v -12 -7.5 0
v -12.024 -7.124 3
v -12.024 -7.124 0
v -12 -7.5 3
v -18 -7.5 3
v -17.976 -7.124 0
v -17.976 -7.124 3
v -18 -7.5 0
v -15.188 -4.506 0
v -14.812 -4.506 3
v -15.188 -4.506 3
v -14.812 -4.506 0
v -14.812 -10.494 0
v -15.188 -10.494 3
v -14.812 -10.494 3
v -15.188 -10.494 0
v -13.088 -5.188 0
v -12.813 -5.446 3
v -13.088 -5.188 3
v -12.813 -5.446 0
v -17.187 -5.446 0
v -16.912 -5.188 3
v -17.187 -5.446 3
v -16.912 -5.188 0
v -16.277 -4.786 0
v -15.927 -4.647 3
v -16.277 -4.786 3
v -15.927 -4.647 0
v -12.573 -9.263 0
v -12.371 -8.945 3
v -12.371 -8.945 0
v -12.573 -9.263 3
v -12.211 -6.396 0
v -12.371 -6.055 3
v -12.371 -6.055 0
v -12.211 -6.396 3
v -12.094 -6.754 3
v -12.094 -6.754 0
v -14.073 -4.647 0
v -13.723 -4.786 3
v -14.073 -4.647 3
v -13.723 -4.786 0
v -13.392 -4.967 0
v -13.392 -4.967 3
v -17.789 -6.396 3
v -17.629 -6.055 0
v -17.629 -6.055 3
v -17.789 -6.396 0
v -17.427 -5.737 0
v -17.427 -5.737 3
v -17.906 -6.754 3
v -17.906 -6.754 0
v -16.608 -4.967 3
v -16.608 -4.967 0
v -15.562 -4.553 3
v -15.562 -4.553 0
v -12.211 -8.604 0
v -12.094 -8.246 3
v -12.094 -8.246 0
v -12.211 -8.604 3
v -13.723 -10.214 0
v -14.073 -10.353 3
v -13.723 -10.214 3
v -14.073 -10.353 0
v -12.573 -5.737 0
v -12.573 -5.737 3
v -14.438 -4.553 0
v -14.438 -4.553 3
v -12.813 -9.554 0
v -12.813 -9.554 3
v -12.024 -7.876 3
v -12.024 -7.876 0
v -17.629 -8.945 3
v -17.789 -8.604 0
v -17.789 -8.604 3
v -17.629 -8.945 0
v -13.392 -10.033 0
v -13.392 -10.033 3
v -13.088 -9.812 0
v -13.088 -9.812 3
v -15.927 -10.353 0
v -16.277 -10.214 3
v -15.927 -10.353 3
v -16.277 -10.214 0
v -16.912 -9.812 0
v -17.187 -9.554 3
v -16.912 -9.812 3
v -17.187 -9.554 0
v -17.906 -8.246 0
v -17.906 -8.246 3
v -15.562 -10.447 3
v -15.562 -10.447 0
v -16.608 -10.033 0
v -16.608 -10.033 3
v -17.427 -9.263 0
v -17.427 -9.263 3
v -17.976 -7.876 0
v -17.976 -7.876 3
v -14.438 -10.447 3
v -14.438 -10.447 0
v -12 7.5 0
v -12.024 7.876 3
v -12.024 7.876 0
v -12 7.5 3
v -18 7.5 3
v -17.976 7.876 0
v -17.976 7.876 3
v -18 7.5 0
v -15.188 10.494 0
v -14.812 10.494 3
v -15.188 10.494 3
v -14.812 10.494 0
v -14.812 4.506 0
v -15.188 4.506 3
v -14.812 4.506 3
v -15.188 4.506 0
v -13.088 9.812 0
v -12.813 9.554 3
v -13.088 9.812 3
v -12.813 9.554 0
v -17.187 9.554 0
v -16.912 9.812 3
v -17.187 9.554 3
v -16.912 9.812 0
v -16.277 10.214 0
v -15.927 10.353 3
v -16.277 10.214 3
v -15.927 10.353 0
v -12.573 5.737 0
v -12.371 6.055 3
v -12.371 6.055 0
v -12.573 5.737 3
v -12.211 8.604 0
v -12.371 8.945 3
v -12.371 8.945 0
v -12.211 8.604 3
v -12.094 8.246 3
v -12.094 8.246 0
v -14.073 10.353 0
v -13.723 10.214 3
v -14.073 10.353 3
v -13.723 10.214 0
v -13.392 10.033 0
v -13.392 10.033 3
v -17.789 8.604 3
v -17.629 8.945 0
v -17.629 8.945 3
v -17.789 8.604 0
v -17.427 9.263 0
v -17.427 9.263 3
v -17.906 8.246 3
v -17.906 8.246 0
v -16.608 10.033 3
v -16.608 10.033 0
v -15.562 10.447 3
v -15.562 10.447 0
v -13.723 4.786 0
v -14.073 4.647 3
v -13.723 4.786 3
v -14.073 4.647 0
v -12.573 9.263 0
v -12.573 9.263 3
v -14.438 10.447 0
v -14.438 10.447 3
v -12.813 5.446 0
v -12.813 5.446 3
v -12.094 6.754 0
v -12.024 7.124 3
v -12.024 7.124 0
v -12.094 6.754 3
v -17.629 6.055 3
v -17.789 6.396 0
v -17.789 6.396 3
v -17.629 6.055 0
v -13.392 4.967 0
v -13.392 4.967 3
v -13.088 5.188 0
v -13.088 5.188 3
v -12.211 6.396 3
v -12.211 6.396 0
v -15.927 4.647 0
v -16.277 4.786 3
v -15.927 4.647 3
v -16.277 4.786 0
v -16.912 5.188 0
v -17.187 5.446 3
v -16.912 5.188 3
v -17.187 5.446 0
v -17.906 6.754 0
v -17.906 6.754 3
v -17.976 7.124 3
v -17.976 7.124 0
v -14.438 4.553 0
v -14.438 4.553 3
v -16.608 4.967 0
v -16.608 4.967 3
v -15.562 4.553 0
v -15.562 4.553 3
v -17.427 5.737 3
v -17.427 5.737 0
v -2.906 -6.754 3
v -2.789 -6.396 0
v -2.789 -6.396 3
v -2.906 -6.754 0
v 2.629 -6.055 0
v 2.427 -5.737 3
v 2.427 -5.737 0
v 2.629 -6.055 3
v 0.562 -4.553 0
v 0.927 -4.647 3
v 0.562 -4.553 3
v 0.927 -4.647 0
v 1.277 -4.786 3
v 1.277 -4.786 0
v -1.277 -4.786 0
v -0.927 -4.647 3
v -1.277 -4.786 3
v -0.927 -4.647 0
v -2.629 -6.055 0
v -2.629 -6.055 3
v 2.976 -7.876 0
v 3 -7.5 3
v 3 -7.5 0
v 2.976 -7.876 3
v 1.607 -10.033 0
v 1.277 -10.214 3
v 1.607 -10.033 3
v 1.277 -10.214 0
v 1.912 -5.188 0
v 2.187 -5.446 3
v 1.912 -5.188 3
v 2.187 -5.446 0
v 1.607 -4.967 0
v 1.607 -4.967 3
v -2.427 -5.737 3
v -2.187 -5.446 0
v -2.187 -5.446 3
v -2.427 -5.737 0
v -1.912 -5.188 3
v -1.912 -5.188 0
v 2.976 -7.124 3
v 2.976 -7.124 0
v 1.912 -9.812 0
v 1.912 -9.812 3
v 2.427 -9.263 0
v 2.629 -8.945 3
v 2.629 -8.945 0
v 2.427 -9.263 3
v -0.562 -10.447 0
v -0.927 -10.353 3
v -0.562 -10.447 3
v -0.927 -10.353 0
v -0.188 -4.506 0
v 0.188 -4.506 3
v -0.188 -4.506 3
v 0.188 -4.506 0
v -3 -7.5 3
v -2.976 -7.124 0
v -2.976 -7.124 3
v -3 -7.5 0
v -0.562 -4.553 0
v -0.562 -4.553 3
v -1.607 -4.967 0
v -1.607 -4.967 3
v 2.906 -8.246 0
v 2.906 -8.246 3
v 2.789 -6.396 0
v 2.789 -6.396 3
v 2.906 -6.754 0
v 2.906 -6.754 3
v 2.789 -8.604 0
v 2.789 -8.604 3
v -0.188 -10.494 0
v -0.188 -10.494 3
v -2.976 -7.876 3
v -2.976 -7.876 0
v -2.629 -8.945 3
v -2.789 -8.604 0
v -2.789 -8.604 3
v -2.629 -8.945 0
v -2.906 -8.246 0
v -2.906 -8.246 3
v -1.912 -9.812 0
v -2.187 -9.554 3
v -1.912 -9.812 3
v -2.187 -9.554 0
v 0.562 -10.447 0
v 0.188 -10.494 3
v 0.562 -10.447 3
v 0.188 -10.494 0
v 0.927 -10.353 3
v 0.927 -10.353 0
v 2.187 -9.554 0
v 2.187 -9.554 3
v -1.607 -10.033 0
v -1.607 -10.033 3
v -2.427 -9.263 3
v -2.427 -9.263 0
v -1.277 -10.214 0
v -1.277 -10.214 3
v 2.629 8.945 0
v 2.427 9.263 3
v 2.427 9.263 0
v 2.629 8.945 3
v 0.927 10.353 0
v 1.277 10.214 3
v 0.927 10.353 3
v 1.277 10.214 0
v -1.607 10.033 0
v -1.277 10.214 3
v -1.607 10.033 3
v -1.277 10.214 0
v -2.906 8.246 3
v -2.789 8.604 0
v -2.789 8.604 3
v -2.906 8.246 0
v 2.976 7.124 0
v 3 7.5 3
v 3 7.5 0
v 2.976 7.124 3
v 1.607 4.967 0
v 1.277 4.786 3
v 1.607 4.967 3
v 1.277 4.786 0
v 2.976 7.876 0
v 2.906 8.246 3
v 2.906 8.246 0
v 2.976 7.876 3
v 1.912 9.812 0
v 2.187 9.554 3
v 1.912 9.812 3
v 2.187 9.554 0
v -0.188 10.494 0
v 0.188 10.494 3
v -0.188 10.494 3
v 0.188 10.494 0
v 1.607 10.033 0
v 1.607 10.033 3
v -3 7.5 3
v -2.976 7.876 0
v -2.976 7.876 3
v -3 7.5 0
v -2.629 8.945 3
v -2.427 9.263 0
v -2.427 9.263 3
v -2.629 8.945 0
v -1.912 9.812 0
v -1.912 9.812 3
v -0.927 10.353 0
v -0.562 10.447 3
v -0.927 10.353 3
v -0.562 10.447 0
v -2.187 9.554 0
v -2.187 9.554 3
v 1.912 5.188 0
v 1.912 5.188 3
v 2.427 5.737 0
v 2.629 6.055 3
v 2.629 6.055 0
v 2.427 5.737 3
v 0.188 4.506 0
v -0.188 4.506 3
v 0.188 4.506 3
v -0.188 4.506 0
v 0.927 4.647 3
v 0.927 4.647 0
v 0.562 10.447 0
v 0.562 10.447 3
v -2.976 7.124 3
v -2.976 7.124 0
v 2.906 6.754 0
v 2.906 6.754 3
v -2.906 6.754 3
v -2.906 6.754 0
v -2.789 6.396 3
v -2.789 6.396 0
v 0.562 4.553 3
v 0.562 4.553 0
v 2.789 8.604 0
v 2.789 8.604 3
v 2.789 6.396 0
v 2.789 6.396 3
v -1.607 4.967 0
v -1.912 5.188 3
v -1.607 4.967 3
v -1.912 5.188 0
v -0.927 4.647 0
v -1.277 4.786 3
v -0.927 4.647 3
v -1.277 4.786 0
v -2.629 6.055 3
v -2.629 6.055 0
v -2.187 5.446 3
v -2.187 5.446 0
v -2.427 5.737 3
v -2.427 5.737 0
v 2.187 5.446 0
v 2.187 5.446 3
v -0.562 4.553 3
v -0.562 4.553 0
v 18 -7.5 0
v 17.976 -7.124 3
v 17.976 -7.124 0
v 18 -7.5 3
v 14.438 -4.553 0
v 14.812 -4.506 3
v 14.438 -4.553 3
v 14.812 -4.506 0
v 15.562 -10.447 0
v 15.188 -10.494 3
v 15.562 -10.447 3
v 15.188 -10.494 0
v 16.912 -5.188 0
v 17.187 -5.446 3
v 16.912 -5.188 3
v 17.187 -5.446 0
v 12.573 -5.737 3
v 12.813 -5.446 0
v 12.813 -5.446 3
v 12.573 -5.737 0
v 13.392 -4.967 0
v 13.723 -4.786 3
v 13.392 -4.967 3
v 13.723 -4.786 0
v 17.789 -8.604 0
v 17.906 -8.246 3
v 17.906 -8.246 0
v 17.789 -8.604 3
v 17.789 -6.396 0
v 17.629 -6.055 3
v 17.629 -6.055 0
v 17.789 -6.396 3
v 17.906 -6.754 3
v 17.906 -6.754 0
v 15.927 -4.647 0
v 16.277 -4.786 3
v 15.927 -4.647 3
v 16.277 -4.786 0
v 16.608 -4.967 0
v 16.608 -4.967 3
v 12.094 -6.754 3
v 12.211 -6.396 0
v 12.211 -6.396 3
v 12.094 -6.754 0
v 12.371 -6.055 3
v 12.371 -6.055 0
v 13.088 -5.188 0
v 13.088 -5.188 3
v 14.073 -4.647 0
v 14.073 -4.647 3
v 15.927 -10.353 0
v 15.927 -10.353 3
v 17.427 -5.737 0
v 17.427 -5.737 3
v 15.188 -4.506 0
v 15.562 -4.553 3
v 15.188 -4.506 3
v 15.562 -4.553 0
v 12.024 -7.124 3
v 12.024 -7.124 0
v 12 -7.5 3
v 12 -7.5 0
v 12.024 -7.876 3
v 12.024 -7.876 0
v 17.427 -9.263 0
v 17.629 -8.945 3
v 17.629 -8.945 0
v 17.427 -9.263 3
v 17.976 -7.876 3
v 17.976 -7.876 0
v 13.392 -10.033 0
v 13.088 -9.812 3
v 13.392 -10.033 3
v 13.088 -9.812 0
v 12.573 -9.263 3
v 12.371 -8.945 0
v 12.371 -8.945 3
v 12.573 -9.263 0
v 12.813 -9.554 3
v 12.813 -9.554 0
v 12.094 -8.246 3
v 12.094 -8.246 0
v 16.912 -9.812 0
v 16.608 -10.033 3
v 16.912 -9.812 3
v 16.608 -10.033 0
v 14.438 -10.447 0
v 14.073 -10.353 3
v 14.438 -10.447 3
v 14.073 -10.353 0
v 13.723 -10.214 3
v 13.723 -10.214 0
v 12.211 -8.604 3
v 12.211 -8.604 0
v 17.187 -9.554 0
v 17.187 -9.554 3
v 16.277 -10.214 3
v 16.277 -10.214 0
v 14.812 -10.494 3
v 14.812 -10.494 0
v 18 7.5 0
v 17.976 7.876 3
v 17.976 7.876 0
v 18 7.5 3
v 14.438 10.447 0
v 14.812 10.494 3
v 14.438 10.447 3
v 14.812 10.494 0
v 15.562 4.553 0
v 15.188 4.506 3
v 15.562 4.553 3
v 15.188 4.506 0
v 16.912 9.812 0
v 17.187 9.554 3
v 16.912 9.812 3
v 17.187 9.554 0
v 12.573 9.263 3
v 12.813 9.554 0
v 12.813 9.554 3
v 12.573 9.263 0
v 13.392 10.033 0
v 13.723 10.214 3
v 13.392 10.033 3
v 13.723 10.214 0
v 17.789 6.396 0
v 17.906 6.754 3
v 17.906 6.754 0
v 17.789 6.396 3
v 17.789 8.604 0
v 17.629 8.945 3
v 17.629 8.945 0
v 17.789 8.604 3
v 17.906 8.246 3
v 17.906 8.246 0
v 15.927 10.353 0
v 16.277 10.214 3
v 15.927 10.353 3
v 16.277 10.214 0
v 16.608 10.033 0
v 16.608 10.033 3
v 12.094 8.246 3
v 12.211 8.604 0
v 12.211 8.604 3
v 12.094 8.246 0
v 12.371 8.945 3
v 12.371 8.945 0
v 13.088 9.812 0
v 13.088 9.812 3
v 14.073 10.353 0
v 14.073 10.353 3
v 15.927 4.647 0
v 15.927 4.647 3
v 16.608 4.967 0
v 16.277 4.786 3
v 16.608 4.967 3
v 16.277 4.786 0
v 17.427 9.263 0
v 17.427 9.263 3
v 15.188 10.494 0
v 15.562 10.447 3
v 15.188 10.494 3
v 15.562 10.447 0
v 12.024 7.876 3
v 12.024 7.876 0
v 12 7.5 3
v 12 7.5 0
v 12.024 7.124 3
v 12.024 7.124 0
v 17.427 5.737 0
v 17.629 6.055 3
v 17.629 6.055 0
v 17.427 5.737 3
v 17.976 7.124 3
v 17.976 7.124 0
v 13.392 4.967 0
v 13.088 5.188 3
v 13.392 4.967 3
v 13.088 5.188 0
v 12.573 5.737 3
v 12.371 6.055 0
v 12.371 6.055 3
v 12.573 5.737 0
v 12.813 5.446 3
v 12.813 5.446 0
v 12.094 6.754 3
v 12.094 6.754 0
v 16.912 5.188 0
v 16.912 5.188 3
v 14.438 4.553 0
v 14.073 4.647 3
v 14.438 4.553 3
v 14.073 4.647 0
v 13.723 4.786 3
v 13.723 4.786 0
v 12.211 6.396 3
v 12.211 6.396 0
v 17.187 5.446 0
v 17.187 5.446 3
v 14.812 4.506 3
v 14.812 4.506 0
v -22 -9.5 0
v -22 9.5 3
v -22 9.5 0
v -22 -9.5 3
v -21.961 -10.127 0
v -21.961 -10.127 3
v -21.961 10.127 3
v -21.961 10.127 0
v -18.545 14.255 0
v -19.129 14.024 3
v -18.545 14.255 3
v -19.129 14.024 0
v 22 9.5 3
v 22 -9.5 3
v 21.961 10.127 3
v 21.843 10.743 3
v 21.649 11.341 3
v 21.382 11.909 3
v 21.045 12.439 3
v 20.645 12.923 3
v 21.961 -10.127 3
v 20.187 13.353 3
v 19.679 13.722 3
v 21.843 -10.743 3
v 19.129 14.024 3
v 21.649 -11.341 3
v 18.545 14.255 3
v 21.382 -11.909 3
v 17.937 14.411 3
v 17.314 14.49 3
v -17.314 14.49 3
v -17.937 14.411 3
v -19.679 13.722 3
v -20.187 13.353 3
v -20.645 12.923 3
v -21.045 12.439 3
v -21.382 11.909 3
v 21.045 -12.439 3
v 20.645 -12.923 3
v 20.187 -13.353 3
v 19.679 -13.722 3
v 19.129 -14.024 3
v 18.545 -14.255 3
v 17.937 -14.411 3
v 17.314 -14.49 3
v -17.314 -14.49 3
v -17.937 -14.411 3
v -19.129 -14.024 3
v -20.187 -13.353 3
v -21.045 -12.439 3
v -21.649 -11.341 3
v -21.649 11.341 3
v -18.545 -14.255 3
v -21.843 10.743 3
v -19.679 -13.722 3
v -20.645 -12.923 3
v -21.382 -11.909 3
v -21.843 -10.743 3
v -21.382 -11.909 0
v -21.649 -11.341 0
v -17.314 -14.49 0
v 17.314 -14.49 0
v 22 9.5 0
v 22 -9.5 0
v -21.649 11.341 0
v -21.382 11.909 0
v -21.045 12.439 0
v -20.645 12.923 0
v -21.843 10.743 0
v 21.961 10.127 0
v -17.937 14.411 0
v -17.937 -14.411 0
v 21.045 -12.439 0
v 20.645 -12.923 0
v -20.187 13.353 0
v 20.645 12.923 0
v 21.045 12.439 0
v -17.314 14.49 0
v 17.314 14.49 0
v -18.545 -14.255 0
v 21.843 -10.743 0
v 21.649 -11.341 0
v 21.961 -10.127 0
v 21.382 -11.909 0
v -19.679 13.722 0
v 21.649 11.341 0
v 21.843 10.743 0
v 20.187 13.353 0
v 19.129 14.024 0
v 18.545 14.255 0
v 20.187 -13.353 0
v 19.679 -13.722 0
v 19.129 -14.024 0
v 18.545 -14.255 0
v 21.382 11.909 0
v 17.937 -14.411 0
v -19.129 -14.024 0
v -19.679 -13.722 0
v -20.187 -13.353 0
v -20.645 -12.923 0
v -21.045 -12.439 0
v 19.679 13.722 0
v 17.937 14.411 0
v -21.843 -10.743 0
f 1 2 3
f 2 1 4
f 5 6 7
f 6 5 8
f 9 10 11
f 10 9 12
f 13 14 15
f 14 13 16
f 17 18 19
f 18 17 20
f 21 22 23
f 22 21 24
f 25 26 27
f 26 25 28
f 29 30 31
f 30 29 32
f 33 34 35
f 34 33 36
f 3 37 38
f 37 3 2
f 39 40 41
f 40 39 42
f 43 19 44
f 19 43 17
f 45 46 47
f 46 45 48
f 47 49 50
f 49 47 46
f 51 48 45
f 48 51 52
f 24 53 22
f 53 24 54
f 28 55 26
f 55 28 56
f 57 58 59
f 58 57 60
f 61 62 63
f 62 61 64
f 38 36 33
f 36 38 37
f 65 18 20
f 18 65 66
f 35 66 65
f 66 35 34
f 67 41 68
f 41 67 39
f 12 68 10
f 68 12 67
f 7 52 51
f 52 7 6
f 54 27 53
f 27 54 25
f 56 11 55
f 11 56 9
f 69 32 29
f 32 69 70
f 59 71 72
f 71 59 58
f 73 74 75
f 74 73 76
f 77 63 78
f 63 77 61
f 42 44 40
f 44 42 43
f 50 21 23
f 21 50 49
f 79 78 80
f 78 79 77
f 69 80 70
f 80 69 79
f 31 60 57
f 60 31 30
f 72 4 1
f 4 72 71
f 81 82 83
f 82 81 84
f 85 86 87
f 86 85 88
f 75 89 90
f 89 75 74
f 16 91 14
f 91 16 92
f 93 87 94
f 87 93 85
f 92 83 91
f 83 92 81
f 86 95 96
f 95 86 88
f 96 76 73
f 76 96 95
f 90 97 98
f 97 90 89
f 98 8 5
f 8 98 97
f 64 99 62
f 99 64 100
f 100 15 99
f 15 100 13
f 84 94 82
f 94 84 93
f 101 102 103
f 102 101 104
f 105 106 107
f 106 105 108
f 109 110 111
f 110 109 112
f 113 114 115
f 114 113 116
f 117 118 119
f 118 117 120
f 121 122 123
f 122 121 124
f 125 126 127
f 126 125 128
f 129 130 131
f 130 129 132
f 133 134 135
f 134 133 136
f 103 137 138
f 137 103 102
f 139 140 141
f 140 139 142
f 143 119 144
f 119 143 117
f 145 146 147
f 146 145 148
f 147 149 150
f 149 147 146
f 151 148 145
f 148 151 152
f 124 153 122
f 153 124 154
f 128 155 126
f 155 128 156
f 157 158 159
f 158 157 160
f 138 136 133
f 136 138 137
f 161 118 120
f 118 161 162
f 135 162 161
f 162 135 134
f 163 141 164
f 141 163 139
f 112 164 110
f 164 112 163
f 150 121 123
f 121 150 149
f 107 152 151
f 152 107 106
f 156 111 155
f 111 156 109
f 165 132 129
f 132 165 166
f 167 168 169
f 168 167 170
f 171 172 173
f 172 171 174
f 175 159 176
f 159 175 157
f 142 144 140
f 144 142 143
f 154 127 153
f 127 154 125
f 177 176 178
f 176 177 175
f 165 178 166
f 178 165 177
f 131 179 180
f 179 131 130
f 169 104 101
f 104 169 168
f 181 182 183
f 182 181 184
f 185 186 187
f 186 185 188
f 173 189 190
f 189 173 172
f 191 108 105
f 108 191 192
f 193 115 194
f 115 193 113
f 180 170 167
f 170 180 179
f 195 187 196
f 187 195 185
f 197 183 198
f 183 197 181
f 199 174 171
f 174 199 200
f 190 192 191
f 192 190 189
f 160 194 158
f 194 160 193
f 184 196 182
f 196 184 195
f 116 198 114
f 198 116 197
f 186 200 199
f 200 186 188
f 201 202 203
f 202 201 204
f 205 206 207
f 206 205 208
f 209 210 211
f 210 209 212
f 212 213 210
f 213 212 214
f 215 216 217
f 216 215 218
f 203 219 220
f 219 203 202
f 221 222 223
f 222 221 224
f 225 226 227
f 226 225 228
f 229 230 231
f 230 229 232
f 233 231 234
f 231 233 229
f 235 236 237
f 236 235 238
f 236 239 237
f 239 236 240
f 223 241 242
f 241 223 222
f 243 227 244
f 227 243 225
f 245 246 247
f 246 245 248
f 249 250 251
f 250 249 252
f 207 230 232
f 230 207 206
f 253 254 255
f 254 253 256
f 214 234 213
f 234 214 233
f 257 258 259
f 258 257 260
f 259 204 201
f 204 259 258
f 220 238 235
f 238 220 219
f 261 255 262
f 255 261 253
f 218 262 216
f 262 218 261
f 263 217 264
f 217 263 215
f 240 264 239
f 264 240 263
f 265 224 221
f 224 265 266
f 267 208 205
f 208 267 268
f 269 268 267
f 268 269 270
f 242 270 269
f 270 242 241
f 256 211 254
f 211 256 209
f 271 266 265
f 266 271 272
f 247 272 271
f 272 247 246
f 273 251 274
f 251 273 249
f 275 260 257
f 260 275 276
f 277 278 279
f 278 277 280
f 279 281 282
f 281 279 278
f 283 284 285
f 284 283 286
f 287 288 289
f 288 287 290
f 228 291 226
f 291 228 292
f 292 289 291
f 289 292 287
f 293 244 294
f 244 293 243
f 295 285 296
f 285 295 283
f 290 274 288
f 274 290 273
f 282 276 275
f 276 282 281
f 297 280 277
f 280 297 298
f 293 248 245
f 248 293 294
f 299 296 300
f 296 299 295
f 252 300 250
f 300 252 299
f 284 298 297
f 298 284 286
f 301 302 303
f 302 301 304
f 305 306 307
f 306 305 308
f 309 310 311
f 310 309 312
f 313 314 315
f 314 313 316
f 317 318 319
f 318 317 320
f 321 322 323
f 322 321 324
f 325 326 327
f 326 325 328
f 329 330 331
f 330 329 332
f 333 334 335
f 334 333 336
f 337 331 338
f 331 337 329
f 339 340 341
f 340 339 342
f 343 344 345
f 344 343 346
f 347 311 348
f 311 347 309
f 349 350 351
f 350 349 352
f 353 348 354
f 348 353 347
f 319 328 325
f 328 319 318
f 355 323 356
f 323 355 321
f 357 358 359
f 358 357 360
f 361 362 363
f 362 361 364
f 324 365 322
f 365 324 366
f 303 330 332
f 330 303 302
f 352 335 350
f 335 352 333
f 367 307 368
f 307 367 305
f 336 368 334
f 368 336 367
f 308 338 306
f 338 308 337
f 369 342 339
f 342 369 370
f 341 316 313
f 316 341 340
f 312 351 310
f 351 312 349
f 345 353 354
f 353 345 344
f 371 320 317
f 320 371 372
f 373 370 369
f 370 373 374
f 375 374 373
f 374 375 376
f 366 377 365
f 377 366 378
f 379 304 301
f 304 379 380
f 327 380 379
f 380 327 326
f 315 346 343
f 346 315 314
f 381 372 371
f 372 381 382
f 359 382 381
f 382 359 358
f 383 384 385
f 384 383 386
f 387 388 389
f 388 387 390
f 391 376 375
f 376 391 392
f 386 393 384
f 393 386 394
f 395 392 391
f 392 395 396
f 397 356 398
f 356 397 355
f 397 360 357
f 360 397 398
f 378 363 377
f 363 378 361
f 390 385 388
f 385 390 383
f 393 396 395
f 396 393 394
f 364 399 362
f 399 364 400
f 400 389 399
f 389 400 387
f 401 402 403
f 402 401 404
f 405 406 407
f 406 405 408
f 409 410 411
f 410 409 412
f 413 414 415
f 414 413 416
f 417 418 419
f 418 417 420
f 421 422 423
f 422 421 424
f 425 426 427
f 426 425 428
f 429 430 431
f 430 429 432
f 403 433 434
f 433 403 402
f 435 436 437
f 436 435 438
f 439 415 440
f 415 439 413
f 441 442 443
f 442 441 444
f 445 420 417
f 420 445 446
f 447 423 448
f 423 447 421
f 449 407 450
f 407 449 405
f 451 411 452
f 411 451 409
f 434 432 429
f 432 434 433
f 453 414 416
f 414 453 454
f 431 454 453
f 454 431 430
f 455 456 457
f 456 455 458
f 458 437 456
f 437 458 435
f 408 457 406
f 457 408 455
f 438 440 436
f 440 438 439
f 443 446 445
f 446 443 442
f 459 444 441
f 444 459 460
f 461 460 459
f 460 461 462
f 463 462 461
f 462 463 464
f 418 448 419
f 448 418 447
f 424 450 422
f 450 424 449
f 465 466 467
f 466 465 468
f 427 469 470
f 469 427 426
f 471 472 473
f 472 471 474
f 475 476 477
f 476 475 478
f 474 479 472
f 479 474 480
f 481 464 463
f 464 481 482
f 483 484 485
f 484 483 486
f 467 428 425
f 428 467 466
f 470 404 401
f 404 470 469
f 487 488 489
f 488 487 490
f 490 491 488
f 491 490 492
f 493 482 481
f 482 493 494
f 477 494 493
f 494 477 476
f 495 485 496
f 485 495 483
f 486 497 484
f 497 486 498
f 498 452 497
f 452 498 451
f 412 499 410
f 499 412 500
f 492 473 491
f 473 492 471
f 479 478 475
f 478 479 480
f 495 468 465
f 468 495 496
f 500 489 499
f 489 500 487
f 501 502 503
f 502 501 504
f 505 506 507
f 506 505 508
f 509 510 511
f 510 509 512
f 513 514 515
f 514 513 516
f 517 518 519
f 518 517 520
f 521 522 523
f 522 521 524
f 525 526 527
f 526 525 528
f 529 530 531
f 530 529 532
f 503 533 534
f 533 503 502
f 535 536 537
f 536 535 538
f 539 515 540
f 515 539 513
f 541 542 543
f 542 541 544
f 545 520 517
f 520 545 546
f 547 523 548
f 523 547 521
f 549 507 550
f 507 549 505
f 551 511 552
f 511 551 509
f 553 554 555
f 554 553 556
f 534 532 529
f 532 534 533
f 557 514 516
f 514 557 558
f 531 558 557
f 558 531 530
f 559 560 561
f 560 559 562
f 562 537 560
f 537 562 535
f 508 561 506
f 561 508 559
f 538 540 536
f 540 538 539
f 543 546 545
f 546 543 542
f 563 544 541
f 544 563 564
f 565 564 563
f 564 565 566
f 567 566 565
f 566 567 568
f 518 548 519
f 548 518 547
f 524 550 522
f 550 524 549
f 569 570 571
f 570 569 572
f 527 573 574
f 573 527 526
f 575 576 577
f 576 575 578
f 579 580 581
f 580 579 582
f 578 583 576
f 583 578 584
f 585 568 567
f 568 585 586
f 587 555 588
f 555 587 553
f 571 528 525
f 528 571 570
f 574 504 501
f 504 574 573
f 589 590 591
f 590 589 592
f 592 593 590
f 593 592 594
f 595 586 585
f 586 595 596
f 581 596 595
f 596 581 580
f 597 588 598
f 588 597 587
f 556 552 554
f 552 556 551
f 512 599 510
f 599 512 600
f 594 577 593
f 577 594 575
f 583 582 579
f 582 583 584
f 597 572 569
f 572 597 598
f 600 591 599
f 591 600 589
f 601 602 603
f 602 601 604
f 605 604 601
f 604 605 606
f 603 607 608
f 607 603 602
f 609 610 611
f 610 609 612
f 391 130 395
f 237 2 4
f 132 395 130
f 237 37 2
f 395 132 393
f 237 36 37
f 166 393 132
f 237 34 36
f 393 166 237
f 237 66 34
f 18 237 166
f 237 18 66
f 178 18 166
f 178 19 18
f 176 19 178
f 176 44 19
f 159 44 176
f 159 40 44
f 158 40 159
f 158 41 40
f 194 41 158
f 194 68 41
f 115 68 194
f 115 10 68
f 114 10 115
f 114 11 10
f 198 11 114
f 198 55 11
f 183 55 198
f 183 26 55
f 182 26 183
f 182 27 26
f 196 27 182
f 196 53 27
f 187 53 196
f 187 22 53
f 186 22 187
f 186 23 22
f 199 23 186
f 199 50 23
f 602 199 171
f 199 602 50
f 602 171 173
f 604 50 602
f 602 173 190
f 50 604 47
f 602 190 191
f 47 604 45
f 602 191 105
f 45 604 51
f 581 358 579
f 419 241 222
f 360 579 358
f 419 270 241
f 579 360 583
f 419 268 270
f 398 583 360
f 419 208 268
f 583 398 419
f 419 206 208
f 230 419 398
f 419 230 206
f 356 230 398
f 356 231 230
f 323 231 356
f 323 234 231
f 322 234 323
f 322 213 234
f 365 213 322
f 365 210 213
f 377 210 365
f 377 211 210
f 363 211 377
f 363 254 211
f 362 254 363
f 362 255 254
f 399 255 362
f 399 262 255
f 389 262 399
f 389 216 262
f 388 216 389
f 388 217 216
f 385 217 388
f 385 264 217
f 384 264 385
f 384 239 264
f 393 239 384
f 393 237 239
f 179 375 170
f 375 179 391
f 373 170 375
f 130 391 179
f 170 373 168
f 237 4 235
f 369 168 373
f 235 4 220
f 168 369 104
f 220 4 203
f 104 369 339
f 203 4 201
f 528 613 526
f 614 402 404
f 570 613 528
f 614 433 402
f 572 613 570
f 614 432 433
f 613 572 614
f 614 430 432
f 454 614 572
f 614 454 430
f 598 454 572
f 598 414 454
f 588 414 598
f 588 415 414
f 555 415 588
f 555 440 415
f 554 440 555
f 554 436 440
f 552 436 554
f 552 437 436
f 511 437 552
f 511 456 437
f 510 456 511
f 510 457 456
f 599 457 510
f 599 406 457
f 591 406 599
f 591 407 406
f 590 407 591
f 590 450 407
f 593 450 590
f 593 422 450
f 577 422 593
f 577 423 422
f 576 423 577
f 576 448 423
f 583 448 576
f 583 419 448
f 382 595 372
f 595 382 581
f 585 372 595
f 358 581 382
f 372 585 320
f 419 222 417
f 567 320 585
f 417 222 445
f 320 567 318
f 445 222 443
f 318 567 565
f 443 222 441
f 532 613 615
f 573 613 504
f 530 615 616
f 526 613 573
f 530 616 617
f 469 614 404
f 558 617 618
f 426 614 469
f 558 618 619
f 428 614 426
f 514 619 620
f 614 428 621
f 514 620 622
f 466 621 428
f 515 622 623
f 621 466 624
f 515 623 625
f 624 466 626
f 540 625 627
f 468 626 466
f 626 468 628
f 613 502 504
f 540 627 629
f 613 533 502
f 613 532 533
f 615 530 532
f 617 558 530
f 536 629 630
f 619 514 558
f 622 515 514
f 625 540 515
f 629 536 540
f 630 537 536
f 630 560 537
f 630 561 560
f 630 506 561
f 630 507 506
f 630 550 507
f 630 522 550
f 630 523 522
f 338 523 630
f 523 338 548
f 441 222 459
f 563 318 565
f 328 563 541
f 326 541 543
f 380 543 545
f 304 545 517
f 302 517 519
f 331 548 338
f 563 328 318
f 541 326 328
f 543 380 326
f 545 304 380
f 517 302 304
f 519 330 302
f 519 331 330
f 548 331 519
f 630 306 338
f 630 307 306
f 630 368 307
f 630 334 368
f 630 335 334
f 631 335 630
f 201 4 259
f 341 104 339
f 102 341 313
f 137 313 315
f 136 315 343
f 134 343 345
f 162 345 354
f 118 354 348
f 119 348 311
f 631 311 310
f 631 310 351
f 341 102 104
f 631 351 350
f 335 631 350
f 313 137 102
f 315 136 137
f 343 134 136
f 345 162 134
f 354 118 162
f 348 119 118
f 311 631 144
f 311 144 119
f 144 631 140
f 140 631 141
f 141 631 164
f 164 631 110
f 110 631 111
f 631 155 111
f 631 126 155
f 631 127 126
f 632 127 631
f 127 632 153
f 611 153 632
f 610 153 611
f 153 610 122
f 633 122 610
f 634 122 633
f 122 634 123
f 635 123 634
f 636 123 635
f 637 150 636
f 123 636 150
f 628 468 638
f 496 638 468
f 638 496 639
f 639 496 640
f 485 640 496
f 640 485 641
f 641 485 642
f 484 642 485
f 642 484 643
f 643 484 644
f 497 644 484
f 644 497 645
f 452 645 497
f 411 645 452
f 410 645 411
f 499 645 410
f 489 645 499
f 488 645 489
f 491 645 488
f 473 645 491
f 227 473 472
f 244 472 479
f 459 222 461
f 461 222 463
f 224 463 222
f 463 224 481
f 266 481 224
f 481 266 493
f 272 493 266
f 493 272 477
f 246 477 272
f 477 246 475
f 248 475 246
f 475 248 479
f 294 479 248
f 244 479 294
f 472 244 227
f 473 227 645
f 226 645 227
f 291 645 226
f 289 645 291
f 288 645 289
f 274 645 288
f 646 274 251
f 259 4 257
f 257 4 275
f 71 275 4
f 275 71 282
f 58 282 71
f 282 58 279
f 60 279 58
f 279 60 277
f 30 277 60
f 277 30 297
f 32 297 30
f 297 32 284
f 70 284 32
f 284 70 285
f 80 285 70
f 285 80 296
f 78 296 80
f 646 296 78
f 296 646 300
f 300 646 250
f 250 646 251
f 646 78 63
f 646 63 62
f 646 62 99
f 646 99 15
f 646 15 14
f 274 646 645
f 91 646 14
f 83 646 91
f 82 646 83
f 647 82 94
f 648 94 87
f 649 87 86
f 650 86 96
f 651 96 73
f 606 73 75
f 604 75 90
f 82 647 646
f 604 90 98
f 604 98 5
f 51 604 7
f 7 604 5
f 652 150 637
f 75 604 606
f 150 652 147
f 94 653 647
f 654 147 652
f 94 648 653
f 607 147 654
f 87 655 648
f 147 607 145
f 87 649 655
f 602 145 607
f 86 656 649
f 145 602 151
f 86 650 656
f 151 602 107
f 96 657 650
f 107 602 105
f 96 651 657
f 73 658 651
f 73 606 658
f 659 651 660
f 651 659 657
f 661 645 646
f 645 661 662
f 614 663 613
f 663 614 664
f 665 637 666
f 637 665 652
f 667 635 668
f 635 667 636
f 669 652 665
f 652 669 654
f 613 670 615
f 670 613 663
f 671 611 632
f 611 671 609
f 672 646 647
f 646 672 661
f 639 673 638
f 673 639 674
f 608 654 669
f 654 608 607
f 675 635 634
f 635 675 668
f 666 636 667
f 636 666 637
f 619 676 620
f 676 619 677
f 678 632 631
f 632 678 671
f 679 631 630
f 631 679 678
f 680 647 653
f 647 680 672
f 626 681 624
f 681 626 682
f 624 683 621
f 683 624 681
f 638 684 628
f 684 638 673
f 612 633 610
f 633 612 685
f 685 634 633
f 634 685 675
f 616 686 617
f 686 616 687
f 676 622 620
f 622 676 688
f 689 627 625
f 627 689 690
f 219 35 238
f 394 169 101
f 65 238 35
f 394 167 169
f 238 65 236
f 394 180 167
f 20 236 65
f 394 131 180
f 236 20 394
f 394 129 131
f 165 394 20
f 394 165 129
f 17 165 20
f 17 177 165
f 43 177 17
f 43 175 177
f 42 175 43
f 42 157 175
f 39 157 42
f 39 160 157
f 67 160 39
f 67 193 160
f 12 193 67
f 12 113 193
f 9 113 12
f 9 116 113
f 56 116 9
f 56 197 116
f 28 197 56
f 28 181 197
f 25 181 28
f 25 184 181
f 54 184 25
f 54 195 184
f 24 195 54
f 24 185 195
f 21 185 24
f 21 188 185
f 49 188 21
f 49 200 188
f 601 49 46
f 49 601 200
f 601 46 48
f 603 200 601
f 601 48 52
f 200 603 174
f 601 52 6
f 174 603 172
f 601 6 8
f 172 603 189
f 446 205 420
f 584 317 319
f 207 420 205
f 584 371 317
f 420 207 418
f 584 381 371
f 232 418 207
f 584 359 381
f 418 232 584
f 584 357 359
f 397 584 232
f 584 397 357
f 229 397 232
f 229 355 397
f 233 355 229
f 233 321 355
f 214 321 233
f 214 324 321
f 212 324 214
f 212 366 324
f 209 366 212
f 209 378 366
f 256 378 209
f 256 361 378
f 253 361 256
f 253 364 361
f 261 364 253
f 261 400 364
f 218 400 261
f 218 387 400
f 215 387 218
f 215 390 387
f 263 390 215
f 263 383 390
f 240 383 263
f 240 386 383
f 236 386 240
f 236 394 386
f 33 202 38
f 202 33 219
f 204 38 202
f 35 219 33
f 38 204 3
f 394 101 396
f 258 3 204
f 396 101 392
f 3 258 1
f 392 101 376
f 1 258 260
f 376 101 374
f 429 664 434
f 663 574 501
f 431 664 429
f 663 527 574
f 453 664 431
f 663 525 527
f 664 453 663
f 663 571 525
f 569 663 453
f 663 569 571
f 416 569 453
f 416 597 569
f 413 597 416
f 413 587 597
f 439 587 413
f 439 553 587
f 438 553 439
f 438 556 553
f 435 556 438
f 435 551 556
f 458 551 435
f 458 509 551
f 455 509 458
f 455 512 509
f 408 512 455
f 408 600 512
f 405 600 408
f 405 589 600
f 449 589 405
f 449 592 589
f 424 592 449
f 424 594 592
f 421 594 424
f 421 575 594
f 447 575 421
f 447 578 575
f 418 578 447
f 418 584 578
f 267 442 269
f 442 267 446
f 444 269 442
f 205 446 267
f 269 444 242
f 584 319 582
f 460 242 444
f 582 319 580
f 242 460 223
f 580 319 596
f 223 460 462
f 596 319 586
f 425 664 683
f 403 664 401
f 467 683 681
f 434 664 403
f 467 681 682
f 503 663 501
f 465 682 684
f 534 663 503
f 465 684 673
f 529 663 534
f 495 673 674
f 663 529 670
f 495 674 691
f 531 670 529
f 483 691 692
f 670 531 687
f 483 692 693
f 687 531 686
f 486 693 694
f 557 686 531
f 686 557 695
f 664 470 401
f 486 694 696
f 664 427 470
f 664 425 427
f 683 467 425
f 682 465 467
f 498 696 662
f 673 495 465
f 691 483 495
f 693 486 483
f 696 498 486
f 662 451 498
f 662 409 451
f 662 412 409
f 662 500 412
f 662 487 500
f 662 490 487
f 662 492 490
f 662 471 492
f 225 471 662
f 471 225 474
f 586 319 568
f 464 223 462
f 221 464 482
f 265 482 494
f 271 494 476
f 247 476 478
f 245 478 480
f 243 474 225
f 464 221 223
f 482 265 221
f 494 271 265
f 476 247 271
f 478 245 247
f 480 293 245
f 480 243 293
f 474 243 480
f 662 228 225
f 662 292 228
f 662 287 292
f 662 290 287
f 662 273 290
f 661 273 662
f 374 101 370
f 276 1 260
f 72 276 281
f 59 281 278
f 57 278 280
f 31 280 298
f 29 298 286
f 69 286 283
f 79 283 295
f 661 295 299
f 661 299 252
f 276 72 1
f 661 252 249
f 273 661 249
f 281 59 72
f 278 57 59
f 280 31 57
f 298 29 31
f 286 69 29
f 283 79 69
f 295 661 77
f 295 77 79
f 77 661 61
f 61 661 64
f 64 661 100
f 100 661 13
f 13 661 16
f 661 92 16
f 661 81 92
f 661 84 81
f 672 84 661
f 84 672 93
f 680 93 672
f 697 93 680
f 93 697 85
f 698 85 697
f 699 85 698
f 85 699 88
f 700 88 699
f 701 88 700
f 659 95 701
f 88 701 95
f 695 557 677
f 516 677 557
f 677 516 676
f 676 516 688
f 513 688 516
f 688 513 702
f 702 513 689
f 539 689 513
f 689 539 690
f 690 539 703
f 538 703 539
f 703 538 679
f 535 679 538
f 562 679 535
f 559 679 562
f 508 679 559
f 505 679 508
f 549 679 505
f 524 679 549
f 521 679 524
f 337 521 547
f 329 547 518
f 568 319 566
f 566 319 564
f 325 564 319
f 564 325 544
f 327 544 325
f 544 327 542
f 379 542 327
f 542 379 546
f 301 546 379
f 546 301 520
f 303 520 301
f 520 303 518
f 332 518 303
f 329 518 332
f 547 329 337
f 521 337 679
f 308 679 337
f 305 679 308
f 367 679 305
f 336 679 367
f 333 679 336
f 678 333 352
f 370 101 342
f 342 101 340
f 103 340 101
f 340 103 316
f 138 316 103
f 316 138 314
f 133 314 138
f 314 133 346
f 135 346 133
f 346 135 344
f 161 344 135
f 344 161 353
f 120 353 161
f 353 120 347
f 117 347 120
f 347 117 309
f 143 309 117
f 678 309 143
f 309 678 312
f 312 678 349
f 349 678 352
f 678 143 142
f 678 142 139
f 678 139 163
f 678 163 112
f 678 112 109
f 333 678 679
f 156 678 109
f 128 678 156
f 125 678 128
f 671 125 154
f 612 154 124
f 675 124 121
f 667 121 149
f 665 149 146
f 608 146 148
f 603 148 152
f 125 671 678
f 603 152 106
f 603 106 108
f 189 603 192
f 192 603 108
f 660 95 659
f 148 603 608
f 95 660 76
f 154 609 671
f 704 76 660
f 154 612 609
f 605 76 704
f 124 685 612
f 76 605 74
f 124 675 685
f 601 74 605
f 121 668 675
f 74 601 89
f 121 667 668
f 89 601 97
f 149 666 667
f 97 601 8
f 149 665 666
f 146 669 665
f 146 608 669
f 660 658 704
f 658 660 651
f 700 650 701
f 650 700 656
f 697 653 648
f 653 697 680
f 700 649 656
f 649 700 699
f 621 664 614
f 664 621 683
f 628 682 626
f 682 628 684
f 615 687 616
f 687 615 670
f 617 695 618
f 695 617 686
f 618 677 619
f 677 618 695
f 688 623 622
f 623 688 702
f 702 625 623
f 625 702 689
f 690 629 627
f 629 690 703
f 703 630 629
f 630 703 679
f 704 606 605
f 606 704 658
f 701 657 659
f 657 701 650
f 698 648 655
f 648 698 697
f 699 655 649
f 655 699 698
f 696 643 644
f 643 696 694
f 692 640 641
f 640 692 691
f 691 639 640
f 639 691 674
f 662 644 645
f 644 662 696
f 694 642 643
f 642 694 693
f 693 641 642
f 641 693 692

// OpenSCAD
// Generated by SolidPython 1.1.3 on 2023-03-12 21:52:33
$fn = 50;


difference() {
	union() {
		translate(v = [0, 0, 0]) {
			rotate(a = [0, 0, 0]) {
				hull() {
					translate(v = [-17.0000000000, 9.5000000000, 0]) {
						rotate(a = [0, 0, 0]) {
							translate(v = [0, 0, 0]) {
								rotate(a = [0, 0, 0]) {
									cylinder(h = 3, r = 5);
								}
							}
						}
					}
					translate(v = [17.0000000000, 9.5000000000, 0]) {
						rotate(a = [0, 0, 0]) {
							translate(v = [0, 0, 0]) {
								rotate(a = [0, 0, 0]) {
									cylinder(h = 3, r = 5);
								}
							}
						}
					}
					translate(v = [-17.0000000000, -9.5000000000, 0]) {
						rotate(a = [0, 0, 0]) {
							translate(v = [0, 0, 0]) {
								rotate(a = [0, 0, 0]) {
									cylinder(h = 3, r = 5);
								}
							}
						}
					}
					translate(v = [17.0000000000, -9.5000000000, 0]) {
						rotate(a = [0, 0, 0]) {
							translate(v = [0, 0, 0]) {
								rotate(a = [0, 0, 0]) {
									cylinder(h = 3, r = 5);
								}
							}
						}
					}
				}
			}
		}
	}
	union() {
		translate(v = [-15.0000000000, -7.5000000000, 0]) {
			rotate(a = [0, 0, 0]) {
				translate(v = [0, 0, -50]) {
					rotate(a = [0, 0, 0]) {
						cylinder(h = 100, r = 3.0000000000);
					}
				}
			}
		}
		translate(v = [-15.0000000000, 7.5000000000, 0]) {
			rotate(a = [0, 0, 0]) {
				translate(v = [0, 0, -50]) {
					rotate(a = [0, 0, 0]) {
						cylinder(h = 100, r = 3.0000000000);
					}
				}
			}
		}
		translate(v = [0.0000000000, -7.5000000000, 0]) {
			rotate(a = [0, 0, 0]) {
				translate(v = [0, 0, -50]) {
					rotate(a = [0, 0, 0]) {
						cylinder(h = 100, r = 3.0000000000);
					}
				}
			}
		}
		translate(v = [0.0000000000, 7.5000000000, 0]) {
			rotate(a = [0, 0, 0]) {
				translate(v = [0, 0, -50]) {
					rotate(a = [0, 0, 0]) {
						cylinder(h = 100, r = 3.0000000000);
					}
				}
			}
		}
		translate(v = [15.0000000000, -7.5000000000, 0]) {
			rotate(a = [0, 0, 0]) {
				translate(v = [0, 0, -50]) {
					rotate(a = [0, 0, 0]) {
						cylinder(h = 100, r = 3.0000000000);
					}
				}
			}
		}
		translate(v = [15.0000000000, 7.5000000000, 0]) {
			rotate(a = [0, 0, 0]) {
				translate(v = [0, 0, -50]) {
					rotate(a = [0, 0, 0]) {
						cylinder(h = 100, r = 3.0000000000);
					}
				}
			}
		}
	}
}
/***********************************************
*********      SolidPython code:      **********
************************************************
 
from solid import *
import os
import subprocess

import oomB

import opsc_library_gen

mode = "laser"
#mode = "3d_print"

defined_objects = {}

radius_dict = {}
countersunk_dict = {}


def set_mode(m):
    global mode
    mode = m
    radius_dict['M6'] = 6.5/2
    radius_dict['M3'] = 3.3/2
    if mode == "laser":
        radius_dict['M6'] = 6/2
        radius_dict['M3'] = 3/2

    countersunk_dict['M3'] = {}
    countersunk_dict['M3']['little_rad'] = radius_dict['M3']
    countersunk_dict['M3']['big_rad'] = (5.5+0.6)/2
    if mode == "laser":
        countersunk_dict['M3']['big_rad'] = (4.75+0.6)/2
        countersunk_dict['M3']['little_rad'] = (4.75+0.6)/2

    countersunk_dict['M3']['height'] = 1.7


def opsc_make_object(filename, objects, save_type="none",resolution=50, layers = 1, tilediff = 200, mode="laser", overwrite=True):
    if overwrite or not os.path.exists(filename):
        set_mode(mode)
        save_type = save_type.lower()
        os.makedirs(os.path.dirname(filename), exist_ok=True)
        final_object = opsc_get_object(objects, mode = mode)
        # Save the final object to the specified filename    
        scad_render_to_file(final_object, filename, file_header='$fn = %s;' % resolution, include_orig_code=True)
        if mode == "laser":
            filename_laser = filename.replace(".scad","-flat.scad")
            scad_render_to_file(getLaser(final_object, layers=layers, tilediff=tilediff), filename_laser, file_header='$fn = %s;' % resolution, include_orig_code=True)
            if save_type == "all":
                saveToAll(filename_laser)
            elif save_type == "dxf":
                saveToDxf(filename_laser)
        if save_type == "all":
            saveToAll(filename)
        elif save_type == "dxf":
            saveToDxf(filename)


def opsc_get_object(objects, mode = "laser"):
    # Create the solidpython objects only include the positive objects and if they don't have inclusion or their inclusion is either all or mode
    # Initialize an empty list to store the results
    positive_objects = []

    # Iterate over the "objects" list
    for obj in objects:
        # Check if the current object has a "type" key with a value of "positive"
        if obj['type'] == 'positive':
            # Check if the current object has an "inclusion" key and its value matches "mode",
            # or if the current object does not have an "inclusion" key at all
            if not 'inclusion' in obj or obj['inclusion'] == "all" or obj['inclusion'] == mode:
                # Call the "get_opsc_item" function with the current object as an argument
                opsc_item = get_opsc_item(obj)
                # Add the result to the "positive_objects" list
                positive_objects.append(opsc_item)
# Initialize an empty list to store the results
    negative_objects = []

    # Iterate over the "objects" list
    for obj in objects:
        # Check if the current object has a "type" key with a value of "negative"
        if obj['type'] == 'negative':
            # Check if the current object has an "inclusion" key and its value matches "mode",
            # or if the current object does not have an "inclusion" key at all
            if not 'inclusion' in obj or obj['inclusion'] == "all" or obj['inclusion'] == mode:
                # Call the "get_opsc_item" function with the current object as an argument
                opsc_item = get_opsc_item(obj)
                # Add the result to the "negative_objects" list
                negative_objects.append(opsc_item)
    
    #positive_objects = [get_opsc_item(obj) for obj in objects if obj['type'] == 'positive']
    #negative_objects = [get_opsc_item(obj) for obj in objects if obj['type'] == 'negative']
    # Union the positive objects
    positive_object = union()(*positive_objects)
    # Union the negative objects
    negative_object = union()(*negative_objects)
    # Create the final object by subtracting the negative objects from the positive objects
    return difference()(positive_object, negative_object)

def get_opsc_item(params):
    # A dictionary to map radius string values to numerical values
    #radius_dict = {'small': 5, 'medium': 10, 'large': 15}
    # An array of function names for basic shapes
    basic_shapes = ['cube', 'sphere', 'cylinder']
    
    # An array of function names for other shapes
    other_shapes = ['hole', 'slot', 'rounded_rectangle', 'countersunk']
    


    # Convert radius to r if present, and remove radius from the params dictionary
    if 'radius' in params:
        if isinstance(params['radius'], str):
            # Use the radius_dict to map the radius string value to a numerical value
            params['r'] = radius_dict[params['radius']]
        else:
            params['r'] = params['radius']
        del params['radius']
    

    # Check if the object type is a basic shape
    if params['shape'] in basic_shapes:
        # Remove shape and unexpected dictionary values
        allowed_keys = {'size', 'r', 'r1', 'r2', 'd', 'h', 'rw', 'rh', 'dw', 'dh'}
        shape_params = {k: v for k, v in params.items() if k in allowed_keys}

        # Call the corresponding function for the shape parameter, using ** notation to pass the shape_params dictionary as keyword arguments
        return get_opsc_transform(params,globals()[params['shape']](**shape_params))
    
    # If the object type is not a basic shape, check if it's a defined object or one of the other shapes
    elif params['shape'] in other_shapes:
        # Call the corresponding function for the shape parameter, passing the params dictionary as an argument
        p2 = copy.deepcopy(params)
        p2["pos"] = [0,0,0]
        return get_opsc_transform(params,globals()[params['shape']](p2))
    
    # If the object is not a basic shape or a defined object, try to import it from a .scad file
    else:
        obj = defined_objects[params['shape']]
        return get_opsc_transform(params,obj)

def get_opsc_transform(params, solid_obj):
    # Rotate the object based on the 'rot' field in the params dictionary, or the 'rotX', 'rotY', and 'rotZ' fields if 'rot' is not present
    rot = params.get('rot', [])
    if rot:
        rotX, rotY, rotZ = rot
    else:
        rotX = params.get('rotX', 0)
        rotY = params.get('rotY', 0)
        rotZ = params.get('rotZ', 0)
    solid_obj = rotate([rotX, rotY, rotZ])(solid_obj)

    # Translate the object based on the 'pos' field in the params dictionary, or the 'x', 'y', and 'z' fields if 'pos' is not present
    pos = params.get('pos', [])
    if pos:
        x, y, z = pos
    else:
        x = params.get('x', 0)
        y = params.get('y', 0)
        z = params.get('z', 0)
    solid_obj = translate([x, y, z])(solid_obj)
    return solid_obj


import random

def opsc_easy_array(type, shape, repeats, pos_start, shift_arr, **kwargs):
    for i in range(0,3):
        repeats.append(1)
        pos_start.append(0)
        shift_arr.append(0)
    return_objects = []

    for x in range(0,repeats[0]):
        for y in range(0,repeats[1]):
            for z in range(0,repeats[2]):
                return_objects.append(opsc_easy(type, shape, pos=[pos_start[0]+x*shift_arr[0],pos_start[1]+y*shift_arr[1],pos_start[2]+z*shift_arr[2]], **kwargs))
    return return_objects                



def opsc_easy(type, shape, **kwargs):
    obj = {
        'type': type,
        'shape': shape
    }
    for param in ['size', 'r', 'r1', 'r2', 'd', 'h', 'rw', 'rh', 'dw', 'dh', 'pos', 'x', 'y', 'z', 'rot', 'rotX', 'rotY', 'rotZ', "w", "inclusion"]:
        if param in kwargs:
            obj[param] = kwargs[param]
    return obj

def hole(params):
    p2 = copy.deepcopy(params)  
    # Check if the radius is a string and replace it with the corresponding value from the dictionary
    if isinstance(p2['r'], str):
        p2['r'] = radius_dict[p2['r']]
    
    # Set the height to 100 if not specified
    if 'h' not in p2:
        p2['h'] = 100
        p2["pos"] = [0,0,-50]
    p2["center"] = True
    # Create the cylinder object
    p2["shape"] = "cylinder"
    p2["type"] = "positive"

    return get_opsc_item(p2)

import copy

def countersunk(params):
    p2 = copy.deepcopy(params)
    counter_rad = p2['r']
    p2['r'] = radius_dict[p2['r']]
    hp = copy.deepcopy(p2)
    hp["type"] = "positive"
    hp["shape"] = "hole"
    del hp["rot"]
    hol = get_opsc_item(hp)
    
    cp = copy.deepcopy(p2)
    cp["h"] = countersunk_dict[counter_rad]["height"]
    cp["r2"] = countersunk_dict[counter_rad]["little_rad"]
    cp["r1"] = countersunk_dict[counter_rad]["big_rad"]
    del cp["r"]
    del cp["rot"]
    cp["type"] = "positive"
    cp["shape"] = "cylinder"
    cp["pos"] = [0,0,0]

    top = get_opsc_item(cp)
    return union()(hol,top)



def slot(params):  
    p2 = copy.deepcopy(params) 
    if isinstance(p2['r'], str):
        p2['r'] = radius_dict[p2['r']]
    p2["type"] = "positive"
    p2["shape"] = "hole"
    del p2["rot"]
    p2["pos"] = [0,0,0]
    left = copy.deepcopy(p2)
    right = copy.deepcopy(p2)
    left["pos"][0] = p2["w"] / 2 - p2["r"] 
    
    right["pos"][0] = -p2["w"] / 2 + p2["r"] 
    pass
    leftObj = get_opsc_item(left)
    rightObj = get_opsc_item(right)
    return hull()(leftObj, rightObj)

def rounded_rectangle(params):   
    p2 = copy.deepcopy(params) 
    p2["h"] = p2["size"][2]
    p2["pos"] = p2.get("pos", [0, 0, 0]) 
    p2["type"] = "positive"
    p2["shape"] = "hole"
    p2["pos"] = [0,0,0]
    
    if 'rot' in p2:
        del p2["rot"]   
    if 'r' not in p2:
        p2["r"] = 5 
    tl = copy.deepcopy(p2)
    tr = copy.deepcopy(p2)
    bl = copy.deepcopy(p2)
    br = copy.deepcopy(p2)
    tl["pos"][0] = -(p2["size"][0] - p2["r"]*2)/2
    tl["pos"][1] = (p2["size"][1] - p2["r"]*2)/2
    tr["pos"][0] = (p2["size"][0] - p2["r"]*2)/2
    tr["pos"][1] = (p2["size"][1] - p2["r"]*2)/2
    bl["pos"][0] = -(p2["size"][0] - p2["r"]*2)/2
    bl["pos"][1] = -(p2["size"][1] - p2["r"]*2)/2
    br["pos"][0] = (p2["size"][0] - p2["r"]*2)/2
    br["pos"][1] = -(p2["size"][1] - p2["r"]*2)/2
    del tl["size"]
    del tr["size"]
    del bl["size"]
    del br["size"]
    tlo = get_opsc_item(tl)
    tro = get_opsc_item(tr)
    blo = get_opsc_item(bl)
    bro = get_opsc_item(br)    
    return hull()(tlo, tro, blo, bro)



def import_scad_object(filename):
    # Import the .scad file and convert it to a solidpython object
    #filename = "parts"
    obj = import_scad(filename)
    return obj.main()
    


import os
import solid as solidpython

# A dictionary to store the defined objects


def load_scad_objects():
    opsc_library_gen.gen_library(defined_objects)

import random

def test(num_objects):
    objects = []
    for i in range(num_objects):
        # Choose a random shape
        #shape = random.choice(['cube', 'sphere', 'cylinder', 'hole', 'slot', "rounded_rectangle"])
        shape = random.choice(["rounded_rectangle"])

        # Choose a random type
        type = random.choice(['positive', 'negative'])
        
        # Create an empty object dictionary
        obj = {'shape': shape, 'type': type}
        
        # Set shape-specific parameters
        if obj['shape'] in ['cube']:
            obj['size'] =  [random.uniform(5, 15), random.uniform(5, 15), random.uniform(5, 15)]
        if obj['shape'] in ['rounded_rectangle']:
            obj['size'] =  [random.uniform(5, 15), random.uniform(5, 15), random.uniform(5, 15)]
            obj['r'] = random.uniform(0.5, 5)
        elif obj['shape'] == 'sphere':
            obj['r'] = random.uniform(5, 15)
        elif obj['shape'] in ['cylinder', 'hole']:
            obj['r'] = random.uniform(0.5, 5)
            obj['h'] = random.uniform(5, 15)
        elif obj['shape'] == 'slot':
            obj['r'] = random.uniform(0.5, 5)
            obj['h'] = random.uniform(5, 15)
            obj['w'] = random.uniform(5, 15)
        
        # Set a random position and rotation
        obj['pos'] = [random.uniform(-20, 20), random.uniform(-20, 20), random.uniform(-20, 20)]
        obj['rot'] = [random.uniform(-180, 180), random.uniform(-180, 180), random.uniform(-180, 180)]
        
        # Add the object to the list
        objects.append(obj)
    return objects

####### old file saving
def saveToAll(fileIn):
    saveToDxf(fileIn)
    saveToPng(fileIn)
    saveToStl(fileIn)
    saveToSvg(fileIn)

def saveToDxf(fileIn, fileOut="", copy_to_laser=True):
    if fileOut == "":
        fileOut = fileIn.replace(".scad",".dxf")
    saveToFile(fileIn, fileOut)


    
def saveToPng(fileIn, fileOut="",extra="--render"):
    if fileOut == "":
        fileOut = fileIn.replace(".scad",".png")
    saveToFile(fileIn, fileOut)

def saveToStl(fileIn, fileOut=""):
    if fileOut == "":
        fileOut = fileIn.replace(".scad",".stl")
    saveToFile(fileIn, fileOut)
    
def saveToSvg(fileIn, fileOut=""):
    if fileOut == "":
        fileOut = fileIn.replace(".scad",".svg")
    saveToFile(fileIn, fileOut)

def saveToFile(fileIn, fileOut,extra=""):
    #extra = extra + " --colorscheme Tomorrow"

    launchStr = 'openscad -o "' + fileOut + '"' + extra + ' "' + fileIn + '"'
    if ".png" in fileOut:
        launchStr = launchStr + " --render"
    print("            saveToFile launch string: " + launchStr)
    subprocess.run(launchStr)
    x=0

def getLaser(final_object,start=1.5,layers=1,thickness=3,tilediff=200):
        rv= []

        for x in range(layers):
            rv.append(translate([0,x*tilediff,0])(
                    projection()(
                        intersection()(translate([-500,-500,start+x*thickness])(cube(size=[1000,1000,0.1])),
                            final_object
                        )
                    )
            )
            )
            
        return union()(rv)

set_mode("laser")
load_scad_objects() 
 
************************************************/
